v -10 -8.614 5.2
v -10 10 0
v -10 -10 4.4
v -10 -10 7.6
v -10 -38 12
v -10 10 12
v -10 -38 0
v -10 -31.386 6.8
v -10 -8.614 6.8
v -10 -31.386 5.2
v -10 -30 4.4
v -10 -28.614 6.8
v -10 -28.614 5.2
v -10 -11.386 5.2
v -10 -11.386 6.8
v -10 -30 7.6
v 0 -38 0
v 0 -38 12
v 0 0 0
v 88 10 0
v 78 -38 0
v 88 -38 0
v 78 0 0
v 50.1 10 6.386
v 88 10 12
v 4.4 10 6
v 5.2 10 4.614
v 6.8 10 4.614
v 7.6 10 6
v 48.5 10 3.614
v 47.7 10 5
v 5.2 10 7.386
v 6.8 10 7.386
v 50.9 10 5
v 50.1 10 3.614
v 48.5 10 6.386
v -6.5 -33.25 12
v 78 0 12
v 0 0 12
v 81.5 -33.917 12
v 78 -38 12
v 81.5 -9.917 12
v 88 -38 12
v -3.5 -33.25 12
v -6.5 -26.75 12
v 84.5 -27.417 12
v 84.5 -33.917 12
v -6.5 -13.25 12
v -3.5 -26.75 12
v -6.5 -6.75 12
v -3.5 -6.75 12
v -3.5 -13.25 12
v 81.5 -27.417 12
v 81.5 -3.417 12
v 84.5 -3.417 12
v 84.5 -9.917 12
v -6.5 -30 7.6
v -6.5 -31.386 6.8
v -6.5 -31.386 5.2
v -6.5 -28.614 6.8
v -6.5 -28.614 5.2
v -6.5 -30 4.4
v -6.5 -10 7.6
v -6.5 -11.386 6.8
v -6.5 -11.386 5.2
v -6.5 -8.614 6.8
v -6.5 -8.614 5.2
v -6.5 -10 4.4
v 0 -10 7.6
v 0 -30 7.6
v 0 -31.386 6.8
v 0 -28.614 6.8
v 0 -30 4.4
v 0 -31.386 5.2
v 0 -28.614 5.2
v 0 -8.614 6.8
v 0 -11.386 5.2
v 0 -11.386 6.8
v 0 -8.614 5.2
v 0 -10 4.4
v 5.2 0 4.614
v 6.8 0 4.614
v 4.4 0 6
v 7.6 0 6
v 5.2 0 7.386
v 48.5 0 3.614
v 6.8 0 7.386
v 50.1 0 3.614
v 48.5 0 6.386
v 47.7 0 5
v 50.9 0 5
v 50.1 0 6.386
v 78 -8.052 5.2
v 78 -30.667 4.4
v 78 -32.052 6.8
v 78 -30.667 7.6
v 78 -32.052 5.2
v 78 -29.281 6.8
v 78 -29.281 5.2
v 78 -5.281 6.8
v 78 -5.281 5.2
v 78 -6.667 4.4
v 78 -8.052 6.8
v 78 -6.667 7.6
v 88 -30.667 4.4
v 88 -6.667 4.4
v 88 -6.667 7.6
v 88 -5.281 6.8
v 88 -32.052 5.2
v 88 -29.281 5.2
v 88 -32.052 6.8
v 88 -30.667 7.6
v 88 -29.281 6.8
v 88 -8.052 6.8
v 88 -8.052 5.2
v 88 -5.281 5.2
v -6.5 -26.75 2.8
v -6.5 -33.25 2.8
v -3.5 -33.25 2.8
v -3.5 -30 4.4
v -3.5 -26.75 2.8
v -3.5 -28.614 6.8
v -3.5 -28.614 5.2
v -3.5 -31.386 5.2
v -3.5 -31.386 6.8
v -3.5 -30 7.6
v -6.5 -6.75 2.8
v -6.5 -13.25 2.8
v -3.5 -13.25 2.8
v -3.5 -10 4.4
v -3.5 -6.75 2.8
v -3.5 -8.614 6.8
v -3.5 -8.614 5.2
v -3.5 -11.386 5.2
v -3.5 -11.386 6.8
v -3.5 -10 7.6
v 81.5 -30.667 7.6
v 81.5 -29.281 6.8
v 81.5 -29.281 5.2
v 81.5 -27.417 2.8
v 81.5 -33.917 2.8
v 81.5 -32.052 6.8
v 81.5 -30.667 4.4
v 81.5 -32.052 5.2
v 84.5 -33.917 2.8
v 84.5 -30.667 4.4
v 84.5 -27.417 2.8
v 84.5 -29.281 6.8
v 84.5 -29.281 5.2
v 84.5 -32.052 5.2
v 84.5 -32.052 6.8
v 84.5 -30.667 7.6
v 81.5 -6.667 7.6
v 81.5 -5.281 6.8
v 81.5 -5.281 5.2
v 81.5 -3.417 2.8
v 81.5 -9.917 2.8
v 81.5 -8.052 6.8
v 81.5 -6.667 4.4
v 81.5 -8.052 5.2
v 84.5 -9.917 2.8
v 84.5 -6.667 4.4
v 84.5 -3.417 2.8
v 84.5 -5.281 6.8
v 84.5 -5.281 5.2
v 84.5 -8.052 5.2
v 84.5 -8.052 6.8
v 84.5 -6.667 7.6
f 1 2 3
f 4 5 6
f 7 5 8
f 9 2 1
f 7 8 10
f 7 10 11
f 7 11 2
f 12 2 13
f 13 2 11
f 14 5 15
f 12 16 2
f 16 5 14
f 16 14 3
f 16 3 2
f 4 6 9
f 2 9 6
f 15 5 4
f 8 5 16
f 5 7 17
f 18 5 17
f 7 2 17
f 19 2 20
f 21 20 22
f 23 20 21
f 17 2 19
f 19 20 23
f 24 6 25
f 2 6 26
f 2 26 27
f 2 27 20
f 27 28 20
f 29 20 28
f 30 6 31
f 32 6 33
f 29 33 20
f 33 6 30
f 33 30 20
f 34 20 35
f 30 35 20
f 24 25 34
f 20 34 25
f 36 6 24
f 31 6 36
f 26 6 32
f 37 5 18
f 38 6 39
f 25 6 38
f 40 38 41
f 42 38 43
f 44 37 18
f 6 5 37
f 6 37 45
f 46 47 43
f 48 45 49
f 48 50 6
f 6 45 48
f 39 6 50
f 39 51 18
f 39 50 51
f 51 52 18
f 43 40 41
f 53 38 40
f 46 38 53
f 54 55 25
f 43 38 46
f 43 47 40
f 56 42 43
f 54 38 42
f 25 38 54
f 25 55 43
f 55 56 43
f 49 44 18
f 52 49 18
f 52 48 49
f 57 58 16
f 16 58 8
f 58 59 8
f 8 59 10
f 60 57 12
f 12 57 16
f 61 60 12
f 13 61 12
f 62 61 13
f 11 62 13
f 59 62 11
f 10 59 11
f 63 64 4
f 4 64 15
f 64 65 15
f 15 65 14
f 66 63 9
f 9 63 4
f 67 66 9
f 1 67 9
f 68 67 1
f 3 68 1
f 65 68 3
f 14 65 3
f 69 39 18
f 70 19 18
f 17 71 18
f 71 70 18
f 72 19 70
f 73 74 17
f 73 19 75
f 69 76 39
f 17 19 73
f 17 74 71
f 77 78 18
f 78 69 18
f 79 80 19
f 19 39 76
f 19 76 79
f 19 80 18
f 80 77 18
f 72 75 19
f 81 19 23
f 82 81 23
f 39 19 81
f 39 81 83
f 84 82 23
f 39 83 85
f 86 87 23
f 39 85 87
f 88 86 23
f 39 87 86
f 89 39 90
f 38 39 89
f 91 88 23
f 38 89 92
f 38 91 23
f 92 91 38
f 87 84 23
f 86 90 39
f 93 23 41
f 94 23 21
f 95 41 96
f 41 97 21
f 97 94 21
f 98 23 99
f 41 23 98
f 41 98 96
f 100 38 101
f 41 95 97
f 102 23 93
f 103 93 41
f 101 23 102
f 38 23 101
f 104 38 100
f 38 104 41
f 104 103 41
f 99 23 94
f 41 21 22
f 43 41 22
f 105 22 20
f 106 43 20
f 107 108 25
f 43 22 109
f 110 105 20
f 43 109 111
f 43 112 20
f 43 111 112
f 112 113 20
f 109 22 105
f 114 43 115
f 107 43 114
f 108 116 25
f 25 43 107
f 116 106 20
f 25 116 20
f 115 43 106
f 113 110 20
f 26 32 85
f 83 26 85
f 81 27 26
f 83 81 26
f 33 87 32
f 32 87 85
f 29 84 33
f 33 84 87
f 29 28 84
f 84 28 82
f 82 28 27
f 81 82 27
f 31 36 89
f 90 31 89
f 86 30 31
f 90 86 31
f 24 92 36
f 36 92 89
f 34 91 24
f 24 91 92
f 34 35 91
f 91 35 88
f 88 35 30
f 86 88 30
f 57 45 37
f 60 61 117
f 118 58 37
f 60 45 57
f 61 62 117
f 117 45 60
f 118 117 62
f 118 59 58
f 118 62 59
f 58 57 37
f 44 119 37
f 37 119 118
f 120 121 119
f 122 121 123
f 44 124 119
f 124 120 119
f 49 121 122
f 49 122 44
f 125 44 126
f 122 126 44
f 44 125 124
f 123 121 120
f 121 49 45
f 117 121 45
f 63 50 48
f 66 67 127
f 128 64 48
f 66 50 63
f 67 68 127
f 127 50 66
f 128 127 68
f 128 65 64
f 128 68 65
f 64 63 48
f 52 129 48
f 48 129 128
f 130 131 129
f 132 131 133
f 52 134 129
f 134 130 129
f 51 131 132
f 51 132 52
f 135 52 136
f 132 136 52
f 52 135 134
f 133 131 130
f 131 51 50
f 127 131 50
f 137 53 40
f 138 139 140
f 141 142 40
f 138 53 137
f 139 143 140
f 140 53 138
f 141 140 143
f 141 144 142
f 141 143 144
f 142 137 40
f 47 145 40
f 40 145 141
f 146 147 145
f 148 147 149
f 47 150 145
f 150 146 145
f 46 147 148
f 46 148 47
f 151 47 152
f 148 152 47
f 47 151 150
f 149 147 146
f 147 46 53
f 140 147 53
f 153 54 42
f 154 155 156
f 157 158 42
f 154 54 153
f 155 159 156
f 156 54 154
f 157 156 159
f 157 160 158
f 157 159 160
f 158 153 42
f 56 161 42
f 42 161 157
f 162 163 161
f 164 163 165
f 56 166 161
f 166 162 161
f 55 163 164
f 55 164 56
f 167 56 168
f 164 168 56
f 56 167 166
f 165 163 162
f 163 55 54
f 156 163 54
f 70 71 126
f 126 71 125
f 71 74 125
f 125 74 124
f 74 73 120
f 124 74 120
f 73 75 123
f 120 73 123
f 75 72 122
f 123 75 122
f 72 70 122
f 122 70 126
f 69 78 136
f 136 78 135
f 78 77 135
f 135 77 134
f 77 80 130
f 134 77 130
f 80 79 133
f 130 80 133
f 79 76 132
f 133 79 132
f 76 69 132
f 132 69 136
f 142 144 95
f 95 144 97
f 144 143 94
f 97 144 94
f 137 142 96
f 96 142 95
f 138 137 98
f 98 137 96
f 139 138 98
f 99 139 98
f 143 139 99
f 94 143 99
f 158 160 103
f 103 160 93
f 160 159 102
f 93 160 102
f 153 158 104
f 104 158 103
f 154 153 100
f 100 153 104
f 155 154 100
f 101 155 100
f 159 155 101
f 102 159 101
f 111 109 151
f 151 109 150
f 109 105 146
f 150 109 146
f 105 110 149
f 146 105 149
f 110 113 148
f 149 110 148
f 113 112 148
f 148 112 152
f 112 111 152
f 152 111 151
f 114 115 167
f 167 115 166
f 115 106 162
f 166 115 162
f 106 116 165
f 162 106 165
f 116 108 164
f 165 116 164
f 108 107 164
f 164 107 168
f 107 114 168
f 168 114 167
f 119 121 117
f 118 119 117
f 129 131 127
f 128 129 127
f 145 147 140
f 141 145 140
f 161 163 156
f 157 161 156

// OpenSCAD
//Spacer const vars
eSpacerH = 12;
eSpacerW = 78;
eSpacerL = 10;

eSpacerHoleOff = 6;
eSpacerHoleDistance = 46.5;



holeOffset = 10;
holeDist = 20;

//
//Servo Mout vars
////////////////////////////
servoW = 23.25;
servoL = 13;
servoH = 16;

servoMountW = 38;
servoMountL = 25;
servoMountH = 6;

servoBaseW = 38;
servoBaseL= 38;
servoBaseH = 10;

wireSlotW = 2;
wireSlotL = 4;

servoBracketH = servoMountH + servoBaseH;
///////////////////////

//
//Fan Mount vars
//Hardware vars
holeD = 3.2;
holeR = holeD / 2;
nutSlotW = 3;
nutSlotL = 6.5;
nutSlotH = (eSpacerH / 2) + (holeD / 2);


//Geometry
//Create Mounting holes
//Extruder Spacer
module eSpacer(){
	difference(){
		cube([eSpacerW, eSpacerL, eSpacerH]);
		rotate([90, 0, 0])translate([eSpacerHoleOff, eSpacerH /2, -eSpacerL]) cylinder(eSpacerW + 1,holeD / 2, holeD /2);
		rotate([90, 0, 0])translate([eSpacerHoleOff + eSpacerHoleDistance - holeD, eSpacerL /2, -eSpacerL]) cylinder(eSpacerW + 1, holeD /2, holeD /2);
}
}


module moutingBracket(){
	difference(){
		//base
		translate([-eSpacerL, -servoBaseL, 0])cube([eSpacerL, servoBaseL + eSpacerL, eSpacerH]);
		//mountHoles
		translate([-eSpacerL - 0.5, -holeOffset, eSpacerH / 2]) rotate([0, 90, 0]) cylinder(eSpacerL + 1, holeD / 2, holeD / 2);
		translate([-eSpacerL - 0.5, -holeOffset - holeDist, (eSpacerH / 2)]) rotate([0, 90, 0]) cylinder(eSpacerL + 1, holeD / 2, holeD / 2);
		//nut slots
		translate([-eSpacerL / 2 - (nutSlotW / 2), (-nutSlotL / 2) -holeOffset, (eSpacerH / 2) - holeD]) cube([nutSlotW, nutSlotL, nutSlotH + holeD]);
		translate([-eSpacerL / 2 - (nutSlotW / 2), (-nutSlotL / 2) -holeOffset - holeDist, (eSpacerH / 2) - holeD]) cube([nutSlotW, nutSlotL, nutSlotH + holeD]);
}
}

module moutingBracketRight(){
	difference(){
		//base
		translate([-eSpacerL, -servoBaseL, 0])cube([eSpacerL, servoBaseL + eSpacerL, eSpacerH]);
		//mountHoles
		translate([-eSpacerL - 0.5, (-holeOffset / 1.5), eSpacerH / 2]) rotate([0, 90, 0]) cylinder(eSpacerL + 1, holeD / 2, holeD / 2);
		translate([-eSpacerL - 0.5, (-holeOffset / 1.5) - holeDist - 4, eSpacerH / 2]) rotate([0, 90, 0]) cylinder(eSpacerL + 1, holeD / 2, holeD / 2);
		//nut slots
		translate([-eSpacerL / 2 - (nutSlotW / 2), (-nutSlotL / 2) - (holeOffset/1.5), (eSpacerH / 2) - holeD]) cube([nutSlotW, nutSlotL, nutSlotH + holeD]);
		translate([-eSpacerL / 2 - (nutSlotW / 2), (-nutSlotL / 2) - (holeOffset / 1.5) - (holeDist + 4), (eSpacerH / 2) - holeD]) cube([nutSlotW, nutSlotL, nutSlotH + holeD]);
}
}

module servoMount(){
	difference(){
	//Base
	
	cube([servoMountW*2, servoMountL, servoMountH]);

	translate([0, 0, servoMountH - 12])cube([12, servoMountL, 12]);

	translate([servoMountW - 0.5, holeOffset, servoMountH - (servoMountW / 2) ]) rotate([0, 90, 0]) cylinder(servoMountW + 1, holeD /2, holeD/2);
	translate([servoMountW - 0.5, holeOffset + holeDist, servoMountH - (servoMountW / 2) ]) rotate([0, 90, 0]) cylinder(servoMountW + 1, holeD /2, holeD/2);
translate([0, (servoMountL / 2) - (servoW / 2), (servoMountH - servoMountW) / 2 - (servoH / 2) ])cube([servoW + 1, servoW, servoH]);

//Wire slot
	translate([0, 6, (servoMountL - 12) / 2 - 2])cube([servoMountH, 2, 4]);
}
}

module servoBracket(){
	//Base
difference(){
union(){
	difference(){
	//Base Cube
	cube([servoBaseW, servoBaseL, servoBaseH]);
	//Mounting Holes
	translate([holeOffset, servoBaseL - ((12 / 2)), 0]) cylinder(servoBaseH, holeR, holeR);
	translate([holeOffset + holeDist, servoBaseL - ((12 / 2)), 0]) cylinder(servoBaseH, holeR, holeR);
	}
	//servoMountBase
	translate([0, 0, servoBaseH])cube([servoMountW, servoMountL, servoMountH]);
}
	//servoMount Hole
	translate([(servoMountW / 2) - (servoW / 2), (servoMountL / 2) - (servoL / 2), 0])cube([servoW, servoL, (servoMountH + servoBaseH)]);
	//Wire Slot
	translate([(servoBaseW / 2) + (servoMountW / 4) + wireSlotW, servoMountL / 2 - wireSlotL / 2, 0])cube([wireSlotW, wireSlotL, servoBracketH]);

}
}


eSpacer();
moutingBracket();
translate([eSpacerW + eSpacerL, 0, 0])moutingBracketRight();
//servoMount();
//servoBracket();
